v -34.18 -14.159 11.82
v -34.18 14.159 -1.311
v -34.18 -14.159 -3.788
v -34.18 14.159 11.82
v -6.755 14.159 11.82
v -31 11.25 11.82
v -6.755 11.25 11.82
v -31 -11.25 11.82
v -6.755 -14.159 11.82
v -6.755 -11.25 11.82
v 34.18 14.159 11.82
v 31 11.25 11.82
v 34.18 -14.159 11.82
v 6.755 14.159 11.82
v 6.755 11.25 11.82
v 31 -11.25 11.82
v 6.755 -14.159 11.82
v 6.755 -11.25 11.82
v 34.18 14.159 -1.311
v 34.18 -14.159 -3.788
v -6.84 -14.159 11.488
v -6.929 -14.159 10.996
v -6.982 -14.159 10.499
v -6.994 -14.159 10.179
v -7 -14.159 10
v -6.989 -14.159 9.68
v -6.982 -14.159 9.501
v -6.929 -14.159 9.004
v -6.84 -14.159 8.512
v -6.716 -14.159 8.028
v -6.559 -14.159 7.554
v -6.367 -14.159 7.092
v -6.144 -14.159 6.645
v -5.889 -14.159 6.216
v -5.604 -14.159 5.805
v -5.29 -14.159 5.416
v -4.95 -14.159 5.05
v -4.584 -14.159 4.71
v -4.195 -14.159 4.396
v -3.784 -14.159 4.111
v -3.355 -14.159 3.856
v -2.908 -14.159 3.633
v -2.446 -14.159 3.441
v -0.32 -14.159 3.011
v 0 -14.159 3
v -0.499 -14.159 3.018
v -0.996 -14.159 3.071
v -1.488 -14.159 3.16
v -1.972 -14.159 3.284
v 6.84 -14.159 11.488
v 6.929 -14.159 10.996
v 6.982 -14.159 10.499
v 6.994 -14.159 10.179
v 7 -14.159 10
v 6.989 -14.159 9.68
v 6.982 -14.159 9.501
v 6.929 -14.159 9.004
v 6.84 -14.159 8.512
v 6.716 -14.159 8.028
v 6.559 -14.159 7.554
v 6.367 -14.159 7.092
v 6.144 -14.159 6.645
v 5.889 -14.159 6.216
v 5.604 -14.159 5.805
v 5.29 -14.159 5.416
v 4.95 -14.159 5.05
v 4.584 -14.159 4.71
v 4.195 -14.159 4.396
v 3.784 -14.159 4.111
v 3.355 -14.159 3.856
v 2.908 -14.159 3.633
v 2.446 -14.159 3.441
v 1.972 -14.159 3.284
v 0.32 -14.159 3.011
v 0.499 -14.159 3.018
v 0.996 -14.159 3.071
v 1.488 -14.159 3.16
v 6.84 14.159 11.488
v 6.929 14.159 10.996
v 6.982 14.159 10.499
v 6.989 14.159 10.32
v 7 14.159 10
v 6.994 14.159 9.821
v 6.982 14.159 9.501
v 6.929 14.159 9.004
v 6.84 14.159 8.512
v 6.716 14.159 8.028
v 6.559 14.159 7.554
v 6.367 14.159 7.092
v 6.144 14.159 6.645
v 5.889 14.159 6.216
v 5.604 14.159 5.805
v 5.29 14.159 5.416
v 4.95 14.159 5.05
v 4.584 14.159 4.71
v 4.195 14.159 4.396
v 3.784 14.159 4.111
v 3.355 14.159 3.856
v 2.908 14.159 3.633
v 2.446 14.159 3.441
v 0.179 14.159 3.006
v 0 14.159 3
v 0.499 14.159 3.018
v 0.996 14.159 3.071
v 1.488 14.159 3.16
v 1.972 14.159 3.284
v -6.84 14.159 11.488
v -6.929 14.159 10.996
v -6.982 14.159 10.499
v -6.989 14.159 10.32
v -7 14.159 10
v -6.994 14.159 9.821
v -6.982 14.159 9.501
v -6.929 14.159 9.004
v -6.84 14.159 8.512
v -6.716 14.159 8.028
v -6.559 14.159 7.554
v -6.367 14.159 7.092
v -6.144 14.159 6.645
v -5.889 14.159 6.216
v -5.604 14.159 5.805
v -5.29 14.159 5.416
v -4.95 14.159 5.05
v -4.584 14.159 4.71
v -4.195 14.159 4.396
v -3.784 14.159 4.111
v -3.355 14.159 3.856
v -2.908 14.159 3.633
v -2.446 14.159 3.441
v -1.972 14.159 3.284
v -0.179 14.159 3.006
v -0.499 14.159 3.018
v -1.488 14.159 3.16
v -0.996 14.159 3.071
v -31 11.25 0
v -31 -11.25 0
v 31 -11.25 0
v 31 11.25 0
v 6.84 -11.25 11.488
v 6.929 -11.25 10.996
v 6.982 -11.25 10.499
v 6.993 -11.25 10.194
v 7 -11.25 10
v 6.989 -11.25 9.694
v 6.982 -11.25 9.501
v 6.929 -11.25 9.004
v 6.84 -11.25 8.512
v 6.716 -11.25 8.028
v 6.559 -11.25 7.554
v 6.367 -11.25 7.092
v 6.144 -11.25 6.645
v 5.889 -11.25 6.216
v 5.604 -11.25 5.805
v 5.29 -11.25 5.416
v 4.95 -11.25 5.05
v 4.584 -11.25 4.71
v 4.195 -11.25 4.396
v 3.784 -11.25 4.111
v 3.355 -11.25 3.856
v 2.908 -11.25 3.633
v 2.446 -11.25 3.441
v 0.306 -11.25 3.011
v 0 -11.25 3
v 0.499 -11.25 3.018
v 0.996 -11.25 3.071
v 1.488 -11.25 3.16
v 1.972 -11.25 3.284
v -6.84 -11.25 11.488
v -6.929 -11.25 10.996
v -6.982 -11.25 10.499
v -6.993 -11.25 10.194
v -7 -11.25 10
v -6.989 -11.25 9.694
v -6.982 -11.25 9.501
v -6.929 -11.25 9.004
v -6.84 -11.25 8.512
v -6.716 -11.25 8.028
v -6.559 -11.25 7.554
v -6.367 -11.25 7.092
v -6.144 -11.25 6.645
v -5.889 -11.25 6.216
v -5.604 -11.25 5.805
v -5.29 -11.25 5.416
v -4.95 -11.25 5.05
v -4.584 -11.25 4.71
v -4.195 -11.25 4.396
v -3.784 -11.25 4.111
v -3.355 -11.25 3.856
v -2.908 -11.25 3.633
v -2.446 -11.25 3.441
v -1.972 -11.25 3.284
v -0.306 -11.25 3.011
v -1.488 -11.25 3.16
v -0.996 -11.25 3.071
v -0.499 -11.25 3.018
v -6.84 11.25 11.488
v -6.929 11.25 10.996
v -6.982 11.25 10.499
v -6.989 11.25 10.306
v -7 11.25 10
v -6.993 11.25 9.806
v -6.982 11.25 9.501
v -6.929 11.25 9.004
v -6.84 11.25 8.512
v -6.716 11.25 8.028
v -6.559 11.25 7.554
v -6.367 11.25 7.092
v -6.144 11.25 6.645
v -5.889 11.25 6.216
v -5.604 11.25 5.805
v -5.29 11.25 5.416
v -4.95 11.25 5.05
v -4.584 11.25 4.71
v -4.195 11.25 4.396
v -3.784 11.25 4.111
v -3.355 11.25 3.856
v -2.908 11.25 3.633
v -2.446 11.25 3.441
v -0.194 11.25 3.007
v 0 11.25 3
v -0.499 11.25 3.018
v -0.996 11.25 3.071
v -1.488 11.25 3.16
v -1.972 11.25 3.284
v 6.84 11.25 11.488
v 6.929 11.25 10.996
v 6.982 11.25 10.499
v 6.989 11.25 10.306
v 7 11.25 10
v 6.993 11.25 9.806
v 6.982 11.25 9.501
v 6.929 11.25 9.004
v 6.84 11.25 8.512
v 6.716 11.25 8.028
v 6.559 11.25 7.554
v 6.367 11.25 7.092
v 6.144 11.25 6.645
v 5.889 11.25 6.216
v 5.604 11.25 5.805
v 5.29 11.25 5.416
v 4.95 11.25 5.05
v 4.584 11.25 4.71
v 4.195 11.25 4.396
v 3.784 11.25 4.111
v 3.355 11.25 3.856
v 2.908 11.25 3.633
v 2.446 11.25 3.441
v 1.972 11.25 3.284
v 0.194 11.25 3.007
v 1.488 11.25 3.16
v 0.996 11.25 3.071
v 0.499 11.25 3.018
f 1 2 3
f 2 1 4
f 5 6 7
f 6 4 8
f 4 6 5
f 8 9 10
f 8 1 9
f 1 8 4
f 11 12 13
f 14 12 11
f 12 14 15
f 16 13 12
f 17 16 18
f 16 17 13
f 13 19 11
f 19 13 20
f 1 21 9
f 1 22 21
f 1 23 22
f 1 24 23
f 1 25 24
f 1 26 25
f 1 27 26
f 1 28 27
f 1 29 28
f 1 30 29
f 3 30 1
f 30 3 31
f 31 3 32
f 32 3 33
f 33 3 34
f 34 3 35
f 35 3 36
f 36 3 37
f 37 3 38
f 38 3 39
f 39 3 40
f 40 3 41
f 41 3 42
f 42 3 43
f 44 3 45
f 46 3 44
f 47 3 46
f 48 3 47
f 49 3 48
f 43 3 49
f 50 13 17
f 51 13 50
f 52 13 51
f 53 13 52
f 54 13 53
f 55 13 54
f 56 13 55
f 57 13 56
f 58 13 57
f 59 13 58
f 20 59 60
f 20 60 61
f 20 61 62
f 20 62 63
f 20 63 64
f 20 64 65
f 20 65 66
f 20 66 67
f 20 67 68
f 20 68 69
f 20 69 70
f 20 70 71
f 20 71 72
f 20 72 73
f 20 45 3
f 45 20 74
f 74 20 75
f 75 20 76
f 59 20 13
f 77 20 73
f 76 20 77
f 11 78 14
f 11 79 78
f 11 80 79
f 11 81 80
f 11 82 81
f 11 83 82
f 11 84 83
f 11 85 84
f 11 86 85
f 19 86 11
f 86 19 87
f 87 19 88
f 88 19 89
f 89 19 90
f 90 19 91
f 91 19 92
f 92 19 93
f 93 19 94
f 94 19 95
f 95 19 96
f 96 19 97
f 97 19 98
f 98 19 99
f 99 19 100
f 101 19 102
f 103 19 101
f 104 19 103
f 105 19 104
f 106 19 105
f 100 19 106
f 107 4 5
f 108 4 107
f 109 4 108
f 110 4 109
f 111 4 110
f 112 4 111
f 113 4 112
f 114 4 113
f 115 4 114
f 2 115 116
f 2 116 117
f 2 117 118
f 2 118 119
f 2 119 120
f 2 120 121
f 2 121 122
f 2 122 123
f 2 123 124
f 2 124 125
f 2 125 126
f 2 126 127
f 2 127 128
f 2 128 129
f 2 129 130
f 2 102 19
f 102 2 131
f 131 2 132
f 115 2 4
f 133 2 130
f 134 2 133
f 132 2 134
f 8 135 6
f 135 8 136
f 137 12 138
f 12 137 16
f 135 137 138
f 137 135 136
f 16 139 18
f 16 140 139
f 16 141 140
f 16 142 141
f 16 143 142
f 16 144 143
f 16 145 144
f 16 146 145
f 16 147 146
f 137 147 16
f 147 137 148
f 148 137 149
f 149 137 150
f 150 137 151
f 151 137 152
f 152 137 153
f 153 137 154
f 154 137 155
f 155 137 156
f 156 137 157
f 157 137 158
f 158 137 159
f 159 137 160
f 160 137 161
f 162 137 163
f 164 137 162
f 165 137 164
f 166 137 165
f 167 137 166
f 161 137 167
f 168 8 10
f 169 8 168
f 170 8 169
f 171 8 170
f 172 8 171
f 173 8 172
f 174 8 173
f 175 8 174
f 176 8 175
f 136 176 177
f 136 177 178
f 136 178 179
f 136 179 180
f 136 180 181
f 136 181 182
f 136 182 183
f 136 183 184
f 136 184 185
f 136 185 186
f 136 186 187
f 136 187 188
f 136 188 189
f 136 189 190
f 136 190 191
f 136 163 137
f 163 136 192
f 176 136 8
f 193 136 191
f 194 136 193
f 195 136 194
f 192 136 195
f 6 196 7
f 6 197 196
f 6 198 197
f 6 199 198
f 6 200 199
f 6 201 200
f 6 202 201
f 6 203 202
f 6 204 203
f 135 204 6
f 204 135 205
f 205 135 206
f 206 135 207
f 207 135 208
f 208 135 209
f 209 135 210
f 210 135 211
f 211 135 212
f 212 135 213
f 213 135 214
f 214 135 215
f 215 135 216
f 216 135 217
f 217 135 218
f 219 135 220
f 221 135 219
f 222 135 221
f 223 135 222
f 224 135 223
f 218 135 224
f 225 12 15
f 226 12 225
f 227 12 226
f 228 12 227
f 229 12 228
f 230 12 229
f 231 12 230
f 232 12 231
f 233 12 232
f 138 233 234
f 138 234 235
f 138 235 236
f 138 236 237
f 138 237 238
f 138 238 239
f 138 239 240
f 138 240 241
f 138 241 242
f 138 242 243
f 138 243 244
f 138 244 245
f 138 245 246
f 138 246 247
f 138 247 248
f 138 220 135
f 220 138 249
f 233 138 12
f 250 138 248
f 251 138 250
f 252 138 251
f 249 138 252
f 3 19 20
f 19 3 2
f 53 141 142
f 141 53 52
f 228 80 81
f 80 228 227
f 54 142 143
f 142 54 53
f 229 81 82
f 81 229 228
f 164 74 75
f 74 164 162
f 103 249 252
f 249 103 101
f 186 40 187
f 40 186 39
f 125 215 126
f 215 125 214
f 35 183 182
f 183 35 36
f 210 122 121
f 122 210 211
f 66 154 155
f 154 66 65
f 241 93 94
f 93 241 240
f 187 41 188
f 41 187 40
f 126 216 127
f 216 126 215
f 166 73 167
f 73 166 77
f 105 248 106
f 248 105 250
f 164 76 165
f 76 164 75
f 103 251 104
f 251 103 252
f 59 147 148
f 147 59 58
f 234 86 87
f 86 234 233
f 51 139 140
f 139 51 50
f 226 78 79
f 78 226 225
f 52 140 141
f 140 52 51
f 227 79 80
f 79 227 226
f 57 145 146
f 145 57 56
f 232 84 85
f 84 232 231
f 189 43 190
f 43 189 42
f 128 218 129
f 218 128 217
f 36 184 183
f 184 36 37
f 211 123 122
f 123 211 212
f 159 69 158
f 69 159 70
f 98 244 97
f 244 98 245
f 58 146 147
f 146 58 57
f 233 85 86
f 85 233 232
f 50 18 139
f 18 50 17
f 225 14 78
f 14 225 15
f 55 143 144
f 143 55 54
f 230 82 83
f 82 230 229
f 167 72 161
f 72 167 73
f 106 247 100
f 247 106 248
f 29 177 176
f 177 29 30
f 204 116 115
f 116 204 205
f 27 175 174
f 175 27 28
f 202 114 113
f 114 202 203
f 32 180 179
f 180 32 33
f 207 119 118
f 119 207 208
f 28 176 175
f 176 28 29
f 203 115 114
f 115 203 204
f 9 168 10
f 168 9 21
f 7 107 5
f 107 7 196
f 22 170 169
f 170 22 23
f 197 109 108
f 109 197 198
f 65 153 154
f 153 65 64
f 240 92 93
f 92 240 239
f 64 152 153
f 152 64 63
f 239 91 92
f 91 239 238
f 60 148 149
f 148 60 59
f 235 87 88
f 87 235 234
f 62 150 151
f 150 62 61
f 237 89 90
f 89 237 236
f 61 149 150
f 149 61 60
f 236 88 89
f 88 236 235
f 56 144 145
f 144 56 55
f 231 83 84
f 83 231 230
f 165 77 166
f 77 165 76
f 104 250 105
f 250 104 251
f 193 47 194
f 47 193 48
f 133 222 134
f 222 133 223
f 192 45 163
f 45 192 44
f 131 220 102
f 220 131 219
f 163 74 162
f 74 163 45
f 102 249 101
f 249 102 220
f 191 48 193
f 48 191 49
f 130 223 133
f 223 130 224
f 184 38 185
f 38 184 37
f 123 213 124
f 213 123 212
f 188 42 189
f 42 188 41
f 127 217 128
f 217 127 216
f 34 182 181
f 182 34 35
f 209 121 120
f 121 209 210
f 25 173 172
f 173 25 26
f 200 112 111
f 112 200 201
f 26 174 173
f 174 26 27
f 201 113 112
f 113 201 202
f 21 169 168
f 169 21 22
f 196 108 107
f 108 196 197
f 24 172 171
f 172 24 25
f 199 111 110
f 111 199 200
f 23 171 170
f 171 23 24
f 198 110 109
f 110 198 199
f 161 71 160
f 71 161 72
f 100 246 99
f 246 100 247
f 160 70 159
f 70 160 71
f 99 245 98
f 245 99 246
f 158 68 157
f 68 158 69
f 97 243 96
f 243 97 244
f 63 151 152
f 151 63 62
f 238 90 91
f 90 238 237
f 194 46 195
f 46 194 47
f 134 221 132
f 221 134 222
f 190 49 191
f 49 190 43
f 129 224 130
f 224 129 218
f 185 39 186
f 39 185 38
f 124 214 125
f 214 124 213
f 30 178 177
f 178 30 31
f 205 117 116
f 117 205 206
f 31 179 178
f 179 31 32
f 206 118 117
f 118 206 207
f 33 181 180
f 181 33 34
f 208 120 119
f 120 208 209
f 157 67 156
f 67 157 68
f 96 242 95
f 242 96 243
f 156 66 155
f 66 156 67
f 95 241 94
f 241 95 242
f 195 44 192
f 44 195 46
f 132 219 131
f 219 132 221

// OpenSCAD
// file: CameraRPI.scad
////////////////////////// VARIAVEIS ////////////////////////////////

$fa = 1.5;
$fs = 0.5;

FC = 1;

// Placa de circuito impresso
cameraCircuitoLar = 32 * FC ;
cameraCircuitoProfun = 32 * FC ;
cameraCircuitoAlt = 1.65 * FC ;


// Base da Lente
cameraBasevLar = 16 * FC ;
cameraBaseProfun = 16 * FC ;
cameraBaseAlt = 8 * FC ;

// Lente
cameraLenteLar = 16 * FC ;
cameraLenteAlt = 7 * FC ;

//Lente Foco
cameraLenteFocoLar = 11.90 * FC ;
cameraLenteFocoAlt = 5 * FC ;

// Base da Lente
cameraConecLar = 22 * FC ;
cameraConecProfun = 5.5 * FC ;
cameraConecAlt = 2.4 * FC ;

//Furos
cameraCircuitoFuroLar = 1.85 * FC ;

////////////////////////// MODULOS ////////////////////////////////
module placaCCD(){
        // Placa de circuito impresso
    color ("darkgreen"){ 
        cube( [cameraCircuitoProfun, cameraCircuitoLar, cameraCircuitoAlt] , center = true);
    }    // Conector odo flat cable da camera
    color ("white"){
        translate([ ( cameraCircuitoProfun / 2 ) - ( cameraConecProfun / 2 )  , 0 , cameraCircuitoAlt ]){
            cube([cameraConecProfun, cameraConecLar, cameraConecAlt] , center = true );
        }
    }
}



module CCD(){
    translate ( [ -cameraBasevLar / 2 , -cameraBaseProfun / 2 , cameraCircuitoAlt / 2 ] ){ 
        color ("gray")
        cube([cameraBasevLar, cameraBaseProfun, cameraBaseAlt]);
    }
}


module jogoLentes( stl ){
   translate([ 0 , 0 , ( cameraCircuitoAlt / 2 ) + cameraBaseAlt ]){
       color ("gray")
       cylinder( r = cameraLenteLar / 2 , h = cameraLenteAlt );
    }
    translate([ 0 , 0 , ( cameraCircuitoAlt / 2 ) + cameraBaseAlt + cameraLenteAlt]){
        color("gray")
        cylinder( r = cameraLenteFocoLar / 2 , h = cameraLenteFocoAlt );
    }
    translate([ 0 , 0 , ( cameraCircuitoAlt / 2 ) + cameraBaseAlt+ cameraLenteAlt + cameraLenteFocoAlt ]){
       color ("gray")
        if ( stl == "true" ){
            cylinder( r = cameraLenteFocoLar / 2 , h = cameraLenteAlt );
        } else {
            cylinder( r = cameraLenteLar / 2 - 0.5 , h = cameraLenteAlt );
        }
    }    
}


module parafusoBase(){
            // Furos da placa para os parafusos 1
            translate([ ( cameraCircuitoProfun / 2 ) - 1.5 , ( cameraCircuitoLar / 2 ) - 1.5, 0 ]){
               #cylinder( r =  cameraCircuitoFuroLar / 2 , h = cameraCircuitoAlt + 0.25 , center = true);
            }
            // Furos da placa para os parafusos 2
            translate([ ( - cameraCircuitoProfun / 2 ) + 1.5 , ( cameraCircuitoLar / 2 ) - 1.5, 0 ]){
               #cylinder( r =  cameraCircuitoFuroLar / 2 , h = cameraCircuitoAlt + 0.25 , center = true);
            }
            // Furos da placa para os parafusos 3
            translate([ ( - cameraCircuitoProfun / 2 ) + 1.5 , ( - cameraCircuitoLar / 2 ) + 1.5, 0 ]){
               #cylinder( r =  cameraCircuitoFuroLar / 2 , h = cameraCircuitoAlt + 0.25 , center = true);
            }
            // Furos da placa para os parafusos 4
            translate([ ( cameraCircuitoProfun / 2 ) - 1.5 , ( - cameraCircuitoLar / 2 ) + 1.5, 0 ]){
               #cylinder( r =  cameraCircuitoFuroLar / 2 , h = cameraCircuitoAlt + 0.25 , center = true);
            }    
}


module camera( stl ){
    difference(){    
        union(){
            // Placa de circuito impresso
            placaCCD(); 
            // CCD
            CCD();
            // JOGO DE LENTES
            jogoLentes( stl);
        }
            // Retirando os furos para os parafusos
            parafusoBase();
    }
}

////////////////////////// REDERIZACAO ////////////////////////////////
//camera( "true" );
// main file
////////////////////  VARIAVEIS //////////////////////////
include <CameraRPI.scad>;

$fa = 1.5;
$fs = 0.5;

FC = 0.985;

/// Peca do tamanho da extrusora
extLar = 62  ; //61.4 * FC ;
extProfun = 22.5 ;  //21.75 * FC ;
extAlt = 12 * FC ;
// Peca a ser feita
pecaLar = 69.4 * FC ;
pecaProfun = 28.75 * FC ;
pecaAlt = 16 * FC ;

////////////////////  MODULOS //////////////////////////
module pecaPrincipal(){
    // Peca a ser feita
    difference(){    
        difference(){
            // Peca a ser feita
            translate([ - (pecaLar / 2) , - ( pecaProfun / 2 ) , - (pecaAlt - extAlt ) ]){
               cube ([ pecaLar , pecaProfun , pecaAlt ]);
            }
            //Extrusora
            translate([ - (extLar / 2) , - ( extProfun / 2 ) , 0 ]){
               cube ([ extLar , extProfun , extAlt ]);
            }
        
        }
        // Corte Chanfrado
        rotate ([ 5 , 0 , 0 ]) {
            translate([ - ( ( pecaLar + 10 ) / 2) , - ( ( pecaProfun + 10 )/ 2 ) , - 18.3 ]){
               cube ([ ( pecaLar + 10 ) , ( pecaProfun + 10 ) , pecaAlt ]);
            }
        }
            // Corte do prafuso
            translate([  0, 0, 10 ]){
               rotate ([ 90 , 0, 0 ]) cylinder ( r = 7 , h = 100 , center = true);
            }
            
    }
}

////////////////////  RENDERIZACAO //////////////////////////

pecaPrincipal();
